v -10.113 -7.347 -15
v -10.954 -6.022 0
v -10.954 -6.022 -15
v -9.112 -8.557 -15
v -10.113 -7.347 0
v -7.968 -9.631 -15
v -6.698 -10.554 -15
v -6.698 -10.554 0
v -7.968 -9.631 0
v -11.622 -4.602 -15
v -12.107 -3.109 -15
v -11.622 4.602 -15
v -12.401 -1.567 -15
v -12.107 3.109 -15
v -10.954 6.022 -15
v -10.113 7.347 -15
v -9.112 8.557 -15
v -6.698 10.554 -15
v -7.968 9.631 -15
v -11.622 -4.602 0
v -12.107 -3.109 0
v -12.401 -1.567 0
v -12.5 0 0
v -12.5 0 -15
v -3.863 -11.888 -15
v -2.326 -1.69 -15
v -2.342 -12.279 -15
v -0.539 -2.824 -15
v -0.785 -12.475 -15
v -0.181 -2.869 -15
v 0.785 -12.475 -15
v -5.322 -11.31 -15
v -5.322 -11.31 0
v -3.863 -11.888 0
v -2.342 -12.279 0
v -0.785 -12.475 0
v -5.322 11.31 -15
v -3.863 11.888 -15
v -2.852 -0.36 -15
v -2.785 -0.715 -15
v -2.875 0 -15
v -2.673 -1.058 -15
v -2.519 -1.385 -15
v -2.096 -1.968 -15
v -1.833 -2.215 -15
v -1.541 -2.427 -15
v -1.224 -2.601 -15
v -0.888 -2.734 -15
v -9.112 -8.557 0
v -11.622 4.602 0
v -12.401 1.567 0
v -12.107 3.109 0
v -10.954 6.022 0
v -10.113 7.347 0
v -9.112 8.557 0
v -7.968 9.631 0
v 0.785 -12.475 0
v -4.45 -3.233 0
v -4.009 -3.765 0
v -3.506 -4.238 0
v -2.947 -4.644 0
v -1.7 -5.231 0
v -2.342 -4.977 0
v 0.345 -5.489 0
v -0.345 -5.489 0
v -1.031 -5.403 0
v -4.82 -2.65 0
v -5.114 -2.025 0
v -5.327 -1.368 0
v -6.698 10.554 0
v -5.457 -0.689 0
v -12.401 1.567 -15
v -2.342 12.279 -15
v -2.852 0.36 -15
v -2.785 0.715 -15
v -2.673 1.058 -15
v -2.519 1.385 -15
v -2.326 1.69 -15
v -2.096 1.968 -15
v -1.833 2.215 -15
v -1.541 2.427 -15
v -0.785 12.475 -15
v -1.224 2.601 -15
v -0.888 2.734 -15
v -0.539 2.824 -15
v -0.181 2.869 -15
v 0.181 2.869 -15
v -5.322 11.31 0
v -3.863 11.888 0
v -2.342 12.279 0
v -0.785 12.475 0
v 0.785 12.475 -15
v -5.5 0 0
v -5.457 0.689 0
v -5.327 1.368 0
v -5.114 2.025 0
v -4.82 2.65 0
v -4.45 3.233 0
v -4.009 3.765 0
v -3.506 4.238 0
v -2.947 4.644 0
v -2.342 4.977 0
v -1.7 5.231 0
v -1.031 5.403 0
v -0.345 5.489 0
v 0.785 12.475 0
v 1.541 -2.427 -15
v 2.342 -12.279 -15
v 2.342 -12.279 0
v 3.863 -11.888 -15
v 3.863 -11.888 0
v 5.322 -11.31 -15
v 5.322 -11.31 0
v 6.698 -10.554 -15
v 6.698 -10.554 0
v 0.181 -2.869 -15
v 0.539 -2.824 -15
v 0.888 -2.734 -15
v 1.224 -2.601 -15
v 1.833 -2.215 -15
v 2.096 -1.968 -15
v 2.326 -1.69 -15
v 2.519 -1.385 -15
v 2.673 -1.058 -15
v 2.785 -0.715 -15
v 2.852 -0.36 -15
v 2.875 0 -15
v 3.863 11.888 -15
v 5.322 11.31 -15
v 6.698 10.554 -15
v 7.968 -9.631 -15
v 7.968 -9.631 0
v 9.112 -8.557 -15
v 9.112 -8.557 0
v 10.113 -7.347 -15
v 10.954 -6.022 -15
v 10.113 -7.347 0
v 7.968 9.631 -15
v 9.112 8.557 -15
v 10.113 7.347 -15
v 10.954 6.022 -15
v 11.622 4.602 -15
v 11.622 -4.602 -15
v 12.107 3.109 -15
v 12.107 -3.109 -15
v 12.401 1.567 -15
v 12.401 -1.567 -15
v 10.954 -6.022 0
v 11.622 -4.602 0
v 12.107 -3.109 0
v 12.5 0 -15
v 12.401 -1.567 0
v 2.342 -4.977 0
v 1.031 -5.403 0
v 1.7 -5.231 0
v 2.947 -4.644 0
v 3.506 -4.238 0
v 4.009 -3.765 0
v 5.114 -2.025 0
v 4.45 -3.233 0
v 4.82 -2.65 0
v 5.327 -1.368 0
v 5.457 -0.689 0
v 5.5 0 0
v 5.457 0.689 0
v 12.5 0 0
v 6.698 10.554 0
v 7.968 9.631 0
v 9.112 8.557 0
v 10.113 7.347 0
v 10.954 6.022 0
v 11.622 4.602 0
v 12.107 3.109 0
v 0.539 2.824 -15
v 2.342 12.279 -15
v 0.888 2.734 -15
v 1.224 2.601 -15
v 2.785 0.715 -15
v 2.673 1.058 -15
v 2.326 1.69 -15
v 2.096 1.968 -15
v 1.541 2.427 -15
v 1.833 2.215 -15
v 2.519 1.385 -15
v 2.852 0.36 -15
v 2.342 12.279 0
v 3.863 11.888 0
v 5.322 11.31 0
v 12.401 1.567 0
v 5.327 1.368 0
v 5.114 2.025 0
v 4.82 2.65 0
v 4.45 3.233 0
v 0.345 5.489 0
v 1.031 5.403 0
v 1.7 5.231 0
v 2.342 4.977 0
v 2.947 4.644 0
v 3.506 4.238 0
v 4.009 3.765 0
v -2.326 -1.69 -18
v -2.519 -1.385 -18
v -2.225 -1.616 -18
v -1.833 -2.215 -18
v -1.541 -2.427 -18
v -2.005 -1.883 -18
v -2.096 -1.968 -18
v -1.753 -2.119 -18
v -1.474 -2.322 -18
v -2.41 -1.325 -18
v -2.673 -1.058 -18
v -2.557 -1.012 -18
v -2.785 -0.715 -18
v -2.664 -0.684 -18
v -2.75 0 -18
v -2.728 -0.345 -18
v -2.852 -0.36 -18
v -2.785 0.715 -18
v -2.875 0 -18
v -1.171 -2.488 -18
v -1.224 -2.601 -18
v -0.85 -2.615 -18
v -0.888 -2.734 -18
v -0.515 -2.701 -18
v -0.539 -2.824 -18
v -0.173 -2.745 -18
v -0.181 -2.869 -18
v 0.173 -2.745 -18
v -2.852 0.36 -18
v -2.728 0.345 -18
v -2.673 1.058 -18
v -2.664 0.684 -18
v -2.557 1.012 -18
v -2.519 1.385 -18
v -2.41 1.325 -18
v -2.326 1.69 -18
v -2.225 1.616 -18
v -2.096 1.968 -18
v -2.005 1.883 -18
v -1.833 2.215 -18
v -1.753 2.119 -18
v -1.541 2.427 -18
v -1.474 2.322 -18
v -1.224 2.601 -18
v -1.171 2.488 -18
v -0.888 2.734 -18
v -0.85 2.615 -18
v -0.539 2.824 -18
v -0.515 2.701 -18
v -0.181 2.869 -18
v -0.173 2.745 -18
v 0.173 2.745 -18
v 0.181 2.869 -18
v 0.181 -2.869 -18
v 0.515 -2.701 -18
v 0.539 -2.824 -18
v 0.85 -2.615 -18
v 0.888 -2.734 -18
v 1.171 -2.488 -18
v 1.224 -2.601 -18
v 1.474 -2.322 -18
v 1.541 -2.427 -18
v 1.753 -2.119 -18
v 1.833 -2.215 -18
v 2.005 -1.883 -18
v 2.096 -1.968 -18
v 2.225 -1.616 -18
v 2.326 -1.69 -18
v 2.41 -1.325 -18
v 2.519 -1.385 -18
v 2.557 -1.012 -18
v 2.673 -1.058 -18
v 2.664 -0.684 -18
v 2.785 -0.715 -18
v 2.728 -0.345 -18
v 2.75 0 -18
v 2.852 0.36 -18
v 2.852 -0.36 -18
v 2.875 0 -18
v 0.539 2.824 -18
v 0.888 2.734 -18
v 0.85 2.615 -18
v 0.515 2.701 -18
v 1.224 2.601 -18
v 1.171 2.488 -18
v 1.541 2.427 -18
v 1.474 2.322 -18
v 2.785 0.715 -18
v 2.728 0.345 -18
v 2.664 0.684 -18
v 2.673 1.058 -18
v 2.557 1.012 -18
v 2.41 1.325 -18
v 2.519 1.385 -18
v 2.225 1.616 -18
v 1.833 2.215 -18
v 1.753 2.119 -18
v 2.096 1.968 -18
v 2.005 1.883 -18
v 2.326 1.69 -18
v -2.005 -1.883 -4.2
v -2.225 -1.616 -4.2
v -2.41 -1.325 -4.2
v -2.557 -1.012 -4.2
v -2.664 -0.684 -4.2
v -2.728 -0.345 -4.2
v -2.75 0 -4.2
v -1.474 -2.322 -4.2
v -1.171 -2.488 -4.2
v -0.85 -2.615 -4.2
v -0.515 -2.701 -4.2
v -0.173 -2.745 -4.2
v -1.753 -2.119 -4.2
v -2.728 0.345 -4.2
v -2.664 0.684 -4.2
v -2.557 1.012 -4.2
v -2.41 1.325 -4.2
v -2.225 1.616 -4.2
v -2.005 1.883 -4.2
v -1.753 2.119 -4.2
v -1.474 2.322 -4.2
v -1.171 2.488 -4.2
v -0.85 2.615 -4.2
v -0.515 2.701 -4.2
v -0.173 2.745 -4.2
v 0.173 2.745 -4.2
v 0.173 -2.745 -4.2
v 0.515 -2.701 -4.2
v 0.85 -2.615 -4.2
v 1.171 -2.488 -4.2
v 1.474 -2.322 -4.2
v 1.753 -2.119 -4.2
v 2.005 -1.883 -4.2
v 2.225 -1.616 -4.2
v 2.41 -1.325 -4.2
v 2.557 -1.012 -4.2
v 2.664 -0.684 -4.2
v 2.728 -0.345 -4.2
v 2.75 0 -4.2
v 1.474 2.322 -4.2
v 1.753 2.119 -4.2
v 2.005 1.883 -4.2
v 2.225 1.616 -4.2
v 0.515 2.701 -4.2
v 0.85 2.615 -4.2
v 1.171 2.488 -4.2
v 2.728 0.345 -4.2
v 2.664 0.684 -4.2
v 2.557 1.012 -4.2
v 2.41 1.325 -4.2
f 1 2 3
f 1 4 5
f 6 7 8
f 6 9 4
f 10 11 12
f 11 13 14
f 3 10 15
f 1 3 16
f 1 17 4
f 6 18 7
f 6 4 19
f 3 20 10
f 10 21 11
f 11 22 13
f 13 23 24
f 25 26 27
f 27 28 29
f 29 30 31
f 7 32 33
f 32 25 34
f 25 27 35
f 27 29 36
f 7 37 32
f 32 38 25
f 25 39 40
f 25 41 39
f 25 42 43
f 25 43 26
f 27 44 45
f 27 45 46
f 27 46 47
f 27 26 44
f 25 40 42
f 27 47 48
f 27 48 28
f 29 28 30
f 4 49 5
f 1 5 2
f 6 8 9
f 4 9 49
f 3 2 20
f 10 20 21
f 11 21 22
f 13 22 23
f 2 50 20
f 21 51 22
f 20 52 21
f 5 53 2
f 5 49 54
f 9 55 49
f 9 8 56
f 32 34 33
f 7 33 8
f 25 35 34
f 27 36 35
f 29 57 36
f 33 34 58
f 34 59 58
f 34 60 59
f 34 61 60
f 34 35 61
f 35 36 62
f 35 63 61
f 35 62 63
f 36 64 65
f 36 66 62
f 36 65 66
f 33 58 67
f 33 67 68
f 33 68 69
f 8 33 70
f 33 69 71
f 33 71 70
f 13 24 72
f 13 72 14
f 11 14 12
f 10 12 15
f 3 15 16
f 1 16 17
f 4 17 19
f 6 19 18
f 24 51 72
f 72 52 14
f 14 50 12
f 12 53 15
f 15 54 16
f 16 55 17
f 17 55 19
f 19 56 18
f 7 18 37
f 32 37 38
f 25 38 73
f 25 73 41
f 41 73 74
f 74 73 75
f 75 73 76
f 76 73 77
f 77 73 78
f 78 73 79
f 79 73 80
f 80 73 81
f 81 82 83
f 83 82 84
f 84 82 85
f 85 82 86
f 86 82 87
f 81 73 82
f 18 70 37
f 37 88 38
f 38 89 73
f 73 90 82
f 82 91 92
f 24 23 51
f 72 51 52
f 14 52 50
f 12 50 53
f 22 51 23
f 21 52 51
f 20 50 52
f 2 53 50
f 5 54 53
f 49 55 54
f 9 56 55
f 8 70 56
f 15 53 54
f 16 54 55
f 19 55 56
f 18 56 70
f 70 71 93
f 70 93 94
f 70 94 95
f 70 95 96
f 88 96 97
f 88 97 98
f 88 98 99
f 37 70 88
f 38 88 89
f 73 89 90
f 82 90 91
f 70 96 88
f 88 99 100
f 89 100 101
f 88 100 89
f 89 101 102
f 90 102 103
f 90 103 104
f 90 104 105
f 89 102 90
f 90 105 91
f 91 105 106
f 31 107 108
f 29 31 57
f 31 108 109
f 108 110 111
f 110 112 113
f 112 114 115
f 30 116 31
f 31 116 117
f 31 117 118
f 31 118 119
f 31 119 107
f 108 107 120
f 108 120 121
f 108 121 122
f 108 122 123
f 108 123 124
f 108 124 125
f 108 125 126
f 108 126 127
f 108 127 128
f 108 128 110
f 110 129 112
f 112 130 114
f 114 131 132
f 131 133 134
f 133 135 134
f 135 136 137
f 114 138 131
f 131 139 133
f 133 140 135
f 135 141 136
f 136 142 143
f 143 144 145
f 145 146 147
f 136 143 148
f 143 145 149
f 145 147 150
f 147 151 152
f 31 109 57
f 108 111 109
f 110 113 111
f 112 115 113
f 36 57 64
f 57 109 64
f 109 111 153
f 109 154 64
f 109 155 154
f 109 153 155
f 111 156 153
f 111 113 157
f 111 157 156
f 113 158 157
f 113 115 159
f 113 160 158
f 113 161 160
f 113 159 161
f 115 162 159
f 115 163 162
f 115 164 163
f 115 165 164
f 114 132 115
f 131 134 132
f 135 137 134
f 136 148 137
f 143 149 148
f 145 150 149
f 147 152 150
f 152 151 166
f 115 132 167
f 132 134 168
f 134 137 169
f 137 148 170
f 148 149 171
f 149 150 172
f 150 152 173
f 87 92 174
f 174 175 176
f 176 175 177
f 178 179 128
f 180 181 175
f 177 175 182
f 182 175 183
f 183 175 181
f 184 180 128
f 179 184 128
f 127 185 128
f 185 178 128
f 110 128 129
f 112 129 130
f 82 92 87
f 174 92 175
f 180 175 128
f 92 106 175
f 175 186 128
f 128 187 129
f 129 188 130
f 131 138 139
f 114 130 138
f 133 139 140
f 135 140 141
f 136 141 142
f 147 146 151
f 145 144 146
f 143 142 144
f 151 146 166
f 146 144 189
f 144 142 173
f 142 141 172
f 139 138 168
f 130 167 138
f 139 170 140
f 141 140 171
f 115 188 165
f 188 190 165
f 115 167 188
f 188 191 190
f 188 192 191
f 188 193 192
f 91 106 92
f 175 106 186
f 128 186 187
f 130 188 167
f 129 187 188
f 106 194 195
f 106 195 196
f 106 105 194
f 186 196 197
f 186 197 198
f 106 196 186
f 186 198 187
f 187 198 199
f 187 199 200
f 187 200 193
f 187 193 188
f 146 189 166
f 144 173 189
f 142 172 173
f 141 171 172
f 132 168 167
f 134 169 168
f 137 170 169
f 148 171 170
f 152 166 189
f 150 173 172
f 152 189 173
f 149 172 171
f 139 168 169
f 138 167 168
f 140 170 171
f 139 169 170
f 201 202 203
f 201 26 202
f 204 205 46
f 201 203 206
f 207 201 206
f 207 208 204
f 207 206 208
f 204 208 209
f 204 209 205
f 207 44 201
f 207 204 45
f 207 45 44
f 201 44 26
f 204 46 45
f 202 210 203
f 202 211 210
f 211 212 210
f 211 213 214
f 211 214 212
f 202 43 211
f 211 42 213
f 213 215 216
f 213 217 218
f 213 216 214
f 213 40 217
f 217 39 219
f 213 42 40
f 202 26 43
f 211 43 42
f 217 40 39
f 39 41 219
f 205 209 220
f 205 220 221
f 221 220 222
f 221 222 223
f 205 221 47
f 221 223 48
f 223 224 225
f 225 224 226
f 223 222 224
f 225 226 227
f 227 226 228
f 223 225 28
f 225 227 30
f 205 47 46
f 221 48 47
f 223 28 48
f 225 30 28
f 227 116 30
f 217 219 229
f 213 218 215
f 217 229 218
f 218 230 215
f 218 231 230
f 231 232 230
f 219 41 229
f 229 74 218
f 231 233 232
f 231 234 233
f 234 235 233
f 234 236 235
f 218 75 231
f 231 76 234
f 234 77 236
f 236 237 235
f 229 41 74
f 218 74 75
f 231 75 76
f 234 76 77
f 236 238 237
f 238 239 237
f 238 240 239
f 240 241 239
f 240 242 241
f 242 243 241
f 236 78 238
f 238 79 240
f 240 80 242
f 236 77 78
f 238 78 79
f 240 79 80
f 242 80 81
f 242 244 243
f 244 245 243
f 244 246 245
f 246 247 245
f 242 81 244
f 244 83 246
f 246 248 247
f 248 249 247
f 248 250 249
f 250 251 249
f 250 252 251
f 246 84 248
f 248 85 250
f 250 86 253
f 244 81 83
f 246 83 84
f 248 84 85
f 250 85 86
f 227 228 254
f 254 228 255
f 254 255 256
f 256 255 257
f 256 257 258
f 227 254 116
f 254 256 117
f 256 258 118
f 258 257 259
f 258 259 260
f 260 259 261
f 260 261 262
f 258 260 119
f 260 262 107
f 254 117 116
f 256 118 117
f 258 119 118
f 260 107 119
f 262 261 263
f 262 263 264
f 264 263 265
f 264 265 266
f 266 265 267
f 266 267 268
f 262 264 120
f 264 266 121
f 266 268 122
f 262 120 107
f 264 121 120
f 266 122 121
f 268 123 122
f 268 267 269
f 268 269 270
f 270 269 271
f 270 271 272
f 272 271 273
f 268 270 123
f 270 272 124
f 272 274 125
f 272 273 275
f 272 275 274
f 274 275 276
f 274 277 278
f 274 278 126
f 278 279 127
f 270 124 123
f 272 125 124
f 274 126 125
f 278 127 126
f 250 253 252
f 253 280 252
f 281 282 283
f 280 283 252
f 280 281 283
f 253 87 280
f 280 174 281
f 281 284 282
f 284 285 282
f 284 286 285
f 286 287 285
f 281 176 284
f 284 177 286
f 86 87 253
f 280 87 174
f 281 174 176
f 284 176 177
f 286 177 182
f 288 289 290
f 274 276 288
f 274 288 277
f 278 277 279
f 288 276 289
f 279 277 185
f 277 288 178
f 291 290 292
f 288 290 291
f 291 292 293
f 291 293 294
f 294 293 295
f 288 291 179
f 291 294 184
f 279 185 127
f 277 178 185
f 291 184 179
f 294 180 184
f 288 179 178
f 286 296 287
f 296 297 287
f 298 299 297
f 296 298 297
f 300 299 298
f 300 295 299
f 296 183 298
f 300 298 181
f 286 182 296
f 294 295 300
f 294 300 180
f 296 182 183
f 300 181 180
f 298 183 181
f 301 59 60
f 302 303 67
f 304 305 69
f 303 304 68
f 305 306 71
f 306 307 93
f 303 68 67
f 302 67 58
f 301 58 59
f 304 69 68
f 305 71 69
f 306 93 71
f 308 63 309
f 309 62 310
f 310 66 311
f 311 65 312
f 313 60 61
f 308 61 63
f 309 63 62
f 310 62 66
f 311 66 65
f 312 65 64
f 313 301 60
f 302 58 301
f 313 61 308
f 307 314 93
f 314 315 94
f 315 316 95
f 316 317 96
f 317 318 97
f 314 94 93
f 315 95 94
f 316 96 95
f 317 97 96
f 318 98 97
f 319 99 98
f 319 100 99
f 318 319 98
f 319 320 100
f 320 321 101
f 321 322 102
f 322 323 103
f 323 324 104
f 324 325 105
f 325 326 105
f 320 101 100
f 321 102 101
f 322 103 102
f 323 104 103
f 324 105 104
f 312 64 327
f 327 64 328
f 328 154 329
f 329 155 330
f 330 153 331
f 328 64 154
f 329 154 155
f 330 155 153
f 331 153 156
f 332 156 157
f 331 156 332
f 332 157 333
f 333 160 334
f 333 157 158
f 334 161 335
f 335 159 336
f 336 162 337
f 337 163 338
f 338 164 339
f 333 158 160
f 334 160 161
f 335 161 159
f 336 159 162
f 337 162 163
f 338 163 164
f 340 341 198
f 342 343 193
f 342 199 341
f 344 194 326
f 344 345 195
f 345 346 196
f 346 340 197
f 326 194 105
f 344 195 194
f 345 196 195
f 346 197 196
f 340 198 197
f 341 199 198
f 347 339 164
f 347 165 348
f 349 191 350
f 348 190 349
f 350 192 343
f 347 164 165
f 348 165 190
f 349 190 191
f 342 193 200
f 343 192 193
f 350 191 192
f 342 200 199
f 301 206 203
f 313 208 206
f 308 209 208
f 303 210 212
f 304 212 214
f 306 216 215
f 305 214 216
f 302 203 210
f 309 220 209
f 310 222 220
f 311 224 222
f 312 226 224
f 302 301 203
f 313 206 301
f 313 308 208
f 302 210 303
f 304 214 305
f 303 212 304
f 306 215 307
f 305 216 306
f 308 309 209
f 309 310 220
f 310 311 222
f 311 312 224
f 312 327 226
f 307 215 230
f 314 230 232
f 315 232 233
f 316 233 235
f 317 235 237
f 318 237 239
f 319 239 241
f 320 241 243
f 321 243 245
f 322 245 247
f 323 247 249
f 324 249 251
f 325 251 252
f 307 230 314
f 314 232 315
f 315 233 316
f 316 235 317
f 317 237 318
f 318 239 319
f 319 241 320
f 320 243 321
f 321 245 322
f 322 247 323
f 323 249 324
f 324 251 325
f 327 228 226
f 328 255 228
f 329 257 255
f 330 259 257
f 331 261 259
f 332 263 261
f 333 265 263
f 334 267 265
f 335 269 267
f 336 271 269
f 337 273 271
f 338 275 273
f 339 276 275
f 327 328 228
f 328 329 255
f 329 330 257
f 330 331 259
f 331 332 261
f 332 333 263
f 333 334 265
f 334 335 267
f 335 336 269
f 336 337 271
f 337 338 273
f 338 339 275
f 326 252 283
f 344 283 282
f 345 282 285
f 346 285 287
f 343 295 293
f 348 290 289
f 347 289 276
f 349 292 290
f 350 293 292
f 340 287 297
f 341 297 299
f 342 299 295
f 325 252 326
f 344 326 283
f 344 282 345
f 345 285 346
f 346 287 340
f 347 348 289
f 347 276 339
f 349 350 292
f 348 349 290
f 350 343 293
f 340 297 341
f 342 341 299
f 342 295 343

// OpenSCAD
$fn = 50;

difference() {
	union() {
		translate(v = [0, 0, -15.0]) {
			cylinder(h = 15, r = 12.5);
		}
		#translate(v = [0, 0, -18.0]) {
			cylinder(h = 18, r = 2.875);
		}
	}
	union() {
		translate(v = [0, 0, 0]) {
			rotate(a = [0, 0, 0]) {
				difference() {
					union() {
						translate(v = [0, 0, -18.0]) {
							cylinder(h = 18, r = 2.25);
						}
						translate(v = [0, 0, -4.2]) {
							cylinder(h = 4.2, r1 = 2.75, r2 = 5.5);
						}
						translate(v = [0, 0, -18.0]) {
							cylinder(h = 18, r = 2.75);
						}
						translate(v = [0, 0, -18.0]) {
							cylinder(h = 18, r = 2.25);
						}
					}
					union();
				}
			}
		}
	}
}
